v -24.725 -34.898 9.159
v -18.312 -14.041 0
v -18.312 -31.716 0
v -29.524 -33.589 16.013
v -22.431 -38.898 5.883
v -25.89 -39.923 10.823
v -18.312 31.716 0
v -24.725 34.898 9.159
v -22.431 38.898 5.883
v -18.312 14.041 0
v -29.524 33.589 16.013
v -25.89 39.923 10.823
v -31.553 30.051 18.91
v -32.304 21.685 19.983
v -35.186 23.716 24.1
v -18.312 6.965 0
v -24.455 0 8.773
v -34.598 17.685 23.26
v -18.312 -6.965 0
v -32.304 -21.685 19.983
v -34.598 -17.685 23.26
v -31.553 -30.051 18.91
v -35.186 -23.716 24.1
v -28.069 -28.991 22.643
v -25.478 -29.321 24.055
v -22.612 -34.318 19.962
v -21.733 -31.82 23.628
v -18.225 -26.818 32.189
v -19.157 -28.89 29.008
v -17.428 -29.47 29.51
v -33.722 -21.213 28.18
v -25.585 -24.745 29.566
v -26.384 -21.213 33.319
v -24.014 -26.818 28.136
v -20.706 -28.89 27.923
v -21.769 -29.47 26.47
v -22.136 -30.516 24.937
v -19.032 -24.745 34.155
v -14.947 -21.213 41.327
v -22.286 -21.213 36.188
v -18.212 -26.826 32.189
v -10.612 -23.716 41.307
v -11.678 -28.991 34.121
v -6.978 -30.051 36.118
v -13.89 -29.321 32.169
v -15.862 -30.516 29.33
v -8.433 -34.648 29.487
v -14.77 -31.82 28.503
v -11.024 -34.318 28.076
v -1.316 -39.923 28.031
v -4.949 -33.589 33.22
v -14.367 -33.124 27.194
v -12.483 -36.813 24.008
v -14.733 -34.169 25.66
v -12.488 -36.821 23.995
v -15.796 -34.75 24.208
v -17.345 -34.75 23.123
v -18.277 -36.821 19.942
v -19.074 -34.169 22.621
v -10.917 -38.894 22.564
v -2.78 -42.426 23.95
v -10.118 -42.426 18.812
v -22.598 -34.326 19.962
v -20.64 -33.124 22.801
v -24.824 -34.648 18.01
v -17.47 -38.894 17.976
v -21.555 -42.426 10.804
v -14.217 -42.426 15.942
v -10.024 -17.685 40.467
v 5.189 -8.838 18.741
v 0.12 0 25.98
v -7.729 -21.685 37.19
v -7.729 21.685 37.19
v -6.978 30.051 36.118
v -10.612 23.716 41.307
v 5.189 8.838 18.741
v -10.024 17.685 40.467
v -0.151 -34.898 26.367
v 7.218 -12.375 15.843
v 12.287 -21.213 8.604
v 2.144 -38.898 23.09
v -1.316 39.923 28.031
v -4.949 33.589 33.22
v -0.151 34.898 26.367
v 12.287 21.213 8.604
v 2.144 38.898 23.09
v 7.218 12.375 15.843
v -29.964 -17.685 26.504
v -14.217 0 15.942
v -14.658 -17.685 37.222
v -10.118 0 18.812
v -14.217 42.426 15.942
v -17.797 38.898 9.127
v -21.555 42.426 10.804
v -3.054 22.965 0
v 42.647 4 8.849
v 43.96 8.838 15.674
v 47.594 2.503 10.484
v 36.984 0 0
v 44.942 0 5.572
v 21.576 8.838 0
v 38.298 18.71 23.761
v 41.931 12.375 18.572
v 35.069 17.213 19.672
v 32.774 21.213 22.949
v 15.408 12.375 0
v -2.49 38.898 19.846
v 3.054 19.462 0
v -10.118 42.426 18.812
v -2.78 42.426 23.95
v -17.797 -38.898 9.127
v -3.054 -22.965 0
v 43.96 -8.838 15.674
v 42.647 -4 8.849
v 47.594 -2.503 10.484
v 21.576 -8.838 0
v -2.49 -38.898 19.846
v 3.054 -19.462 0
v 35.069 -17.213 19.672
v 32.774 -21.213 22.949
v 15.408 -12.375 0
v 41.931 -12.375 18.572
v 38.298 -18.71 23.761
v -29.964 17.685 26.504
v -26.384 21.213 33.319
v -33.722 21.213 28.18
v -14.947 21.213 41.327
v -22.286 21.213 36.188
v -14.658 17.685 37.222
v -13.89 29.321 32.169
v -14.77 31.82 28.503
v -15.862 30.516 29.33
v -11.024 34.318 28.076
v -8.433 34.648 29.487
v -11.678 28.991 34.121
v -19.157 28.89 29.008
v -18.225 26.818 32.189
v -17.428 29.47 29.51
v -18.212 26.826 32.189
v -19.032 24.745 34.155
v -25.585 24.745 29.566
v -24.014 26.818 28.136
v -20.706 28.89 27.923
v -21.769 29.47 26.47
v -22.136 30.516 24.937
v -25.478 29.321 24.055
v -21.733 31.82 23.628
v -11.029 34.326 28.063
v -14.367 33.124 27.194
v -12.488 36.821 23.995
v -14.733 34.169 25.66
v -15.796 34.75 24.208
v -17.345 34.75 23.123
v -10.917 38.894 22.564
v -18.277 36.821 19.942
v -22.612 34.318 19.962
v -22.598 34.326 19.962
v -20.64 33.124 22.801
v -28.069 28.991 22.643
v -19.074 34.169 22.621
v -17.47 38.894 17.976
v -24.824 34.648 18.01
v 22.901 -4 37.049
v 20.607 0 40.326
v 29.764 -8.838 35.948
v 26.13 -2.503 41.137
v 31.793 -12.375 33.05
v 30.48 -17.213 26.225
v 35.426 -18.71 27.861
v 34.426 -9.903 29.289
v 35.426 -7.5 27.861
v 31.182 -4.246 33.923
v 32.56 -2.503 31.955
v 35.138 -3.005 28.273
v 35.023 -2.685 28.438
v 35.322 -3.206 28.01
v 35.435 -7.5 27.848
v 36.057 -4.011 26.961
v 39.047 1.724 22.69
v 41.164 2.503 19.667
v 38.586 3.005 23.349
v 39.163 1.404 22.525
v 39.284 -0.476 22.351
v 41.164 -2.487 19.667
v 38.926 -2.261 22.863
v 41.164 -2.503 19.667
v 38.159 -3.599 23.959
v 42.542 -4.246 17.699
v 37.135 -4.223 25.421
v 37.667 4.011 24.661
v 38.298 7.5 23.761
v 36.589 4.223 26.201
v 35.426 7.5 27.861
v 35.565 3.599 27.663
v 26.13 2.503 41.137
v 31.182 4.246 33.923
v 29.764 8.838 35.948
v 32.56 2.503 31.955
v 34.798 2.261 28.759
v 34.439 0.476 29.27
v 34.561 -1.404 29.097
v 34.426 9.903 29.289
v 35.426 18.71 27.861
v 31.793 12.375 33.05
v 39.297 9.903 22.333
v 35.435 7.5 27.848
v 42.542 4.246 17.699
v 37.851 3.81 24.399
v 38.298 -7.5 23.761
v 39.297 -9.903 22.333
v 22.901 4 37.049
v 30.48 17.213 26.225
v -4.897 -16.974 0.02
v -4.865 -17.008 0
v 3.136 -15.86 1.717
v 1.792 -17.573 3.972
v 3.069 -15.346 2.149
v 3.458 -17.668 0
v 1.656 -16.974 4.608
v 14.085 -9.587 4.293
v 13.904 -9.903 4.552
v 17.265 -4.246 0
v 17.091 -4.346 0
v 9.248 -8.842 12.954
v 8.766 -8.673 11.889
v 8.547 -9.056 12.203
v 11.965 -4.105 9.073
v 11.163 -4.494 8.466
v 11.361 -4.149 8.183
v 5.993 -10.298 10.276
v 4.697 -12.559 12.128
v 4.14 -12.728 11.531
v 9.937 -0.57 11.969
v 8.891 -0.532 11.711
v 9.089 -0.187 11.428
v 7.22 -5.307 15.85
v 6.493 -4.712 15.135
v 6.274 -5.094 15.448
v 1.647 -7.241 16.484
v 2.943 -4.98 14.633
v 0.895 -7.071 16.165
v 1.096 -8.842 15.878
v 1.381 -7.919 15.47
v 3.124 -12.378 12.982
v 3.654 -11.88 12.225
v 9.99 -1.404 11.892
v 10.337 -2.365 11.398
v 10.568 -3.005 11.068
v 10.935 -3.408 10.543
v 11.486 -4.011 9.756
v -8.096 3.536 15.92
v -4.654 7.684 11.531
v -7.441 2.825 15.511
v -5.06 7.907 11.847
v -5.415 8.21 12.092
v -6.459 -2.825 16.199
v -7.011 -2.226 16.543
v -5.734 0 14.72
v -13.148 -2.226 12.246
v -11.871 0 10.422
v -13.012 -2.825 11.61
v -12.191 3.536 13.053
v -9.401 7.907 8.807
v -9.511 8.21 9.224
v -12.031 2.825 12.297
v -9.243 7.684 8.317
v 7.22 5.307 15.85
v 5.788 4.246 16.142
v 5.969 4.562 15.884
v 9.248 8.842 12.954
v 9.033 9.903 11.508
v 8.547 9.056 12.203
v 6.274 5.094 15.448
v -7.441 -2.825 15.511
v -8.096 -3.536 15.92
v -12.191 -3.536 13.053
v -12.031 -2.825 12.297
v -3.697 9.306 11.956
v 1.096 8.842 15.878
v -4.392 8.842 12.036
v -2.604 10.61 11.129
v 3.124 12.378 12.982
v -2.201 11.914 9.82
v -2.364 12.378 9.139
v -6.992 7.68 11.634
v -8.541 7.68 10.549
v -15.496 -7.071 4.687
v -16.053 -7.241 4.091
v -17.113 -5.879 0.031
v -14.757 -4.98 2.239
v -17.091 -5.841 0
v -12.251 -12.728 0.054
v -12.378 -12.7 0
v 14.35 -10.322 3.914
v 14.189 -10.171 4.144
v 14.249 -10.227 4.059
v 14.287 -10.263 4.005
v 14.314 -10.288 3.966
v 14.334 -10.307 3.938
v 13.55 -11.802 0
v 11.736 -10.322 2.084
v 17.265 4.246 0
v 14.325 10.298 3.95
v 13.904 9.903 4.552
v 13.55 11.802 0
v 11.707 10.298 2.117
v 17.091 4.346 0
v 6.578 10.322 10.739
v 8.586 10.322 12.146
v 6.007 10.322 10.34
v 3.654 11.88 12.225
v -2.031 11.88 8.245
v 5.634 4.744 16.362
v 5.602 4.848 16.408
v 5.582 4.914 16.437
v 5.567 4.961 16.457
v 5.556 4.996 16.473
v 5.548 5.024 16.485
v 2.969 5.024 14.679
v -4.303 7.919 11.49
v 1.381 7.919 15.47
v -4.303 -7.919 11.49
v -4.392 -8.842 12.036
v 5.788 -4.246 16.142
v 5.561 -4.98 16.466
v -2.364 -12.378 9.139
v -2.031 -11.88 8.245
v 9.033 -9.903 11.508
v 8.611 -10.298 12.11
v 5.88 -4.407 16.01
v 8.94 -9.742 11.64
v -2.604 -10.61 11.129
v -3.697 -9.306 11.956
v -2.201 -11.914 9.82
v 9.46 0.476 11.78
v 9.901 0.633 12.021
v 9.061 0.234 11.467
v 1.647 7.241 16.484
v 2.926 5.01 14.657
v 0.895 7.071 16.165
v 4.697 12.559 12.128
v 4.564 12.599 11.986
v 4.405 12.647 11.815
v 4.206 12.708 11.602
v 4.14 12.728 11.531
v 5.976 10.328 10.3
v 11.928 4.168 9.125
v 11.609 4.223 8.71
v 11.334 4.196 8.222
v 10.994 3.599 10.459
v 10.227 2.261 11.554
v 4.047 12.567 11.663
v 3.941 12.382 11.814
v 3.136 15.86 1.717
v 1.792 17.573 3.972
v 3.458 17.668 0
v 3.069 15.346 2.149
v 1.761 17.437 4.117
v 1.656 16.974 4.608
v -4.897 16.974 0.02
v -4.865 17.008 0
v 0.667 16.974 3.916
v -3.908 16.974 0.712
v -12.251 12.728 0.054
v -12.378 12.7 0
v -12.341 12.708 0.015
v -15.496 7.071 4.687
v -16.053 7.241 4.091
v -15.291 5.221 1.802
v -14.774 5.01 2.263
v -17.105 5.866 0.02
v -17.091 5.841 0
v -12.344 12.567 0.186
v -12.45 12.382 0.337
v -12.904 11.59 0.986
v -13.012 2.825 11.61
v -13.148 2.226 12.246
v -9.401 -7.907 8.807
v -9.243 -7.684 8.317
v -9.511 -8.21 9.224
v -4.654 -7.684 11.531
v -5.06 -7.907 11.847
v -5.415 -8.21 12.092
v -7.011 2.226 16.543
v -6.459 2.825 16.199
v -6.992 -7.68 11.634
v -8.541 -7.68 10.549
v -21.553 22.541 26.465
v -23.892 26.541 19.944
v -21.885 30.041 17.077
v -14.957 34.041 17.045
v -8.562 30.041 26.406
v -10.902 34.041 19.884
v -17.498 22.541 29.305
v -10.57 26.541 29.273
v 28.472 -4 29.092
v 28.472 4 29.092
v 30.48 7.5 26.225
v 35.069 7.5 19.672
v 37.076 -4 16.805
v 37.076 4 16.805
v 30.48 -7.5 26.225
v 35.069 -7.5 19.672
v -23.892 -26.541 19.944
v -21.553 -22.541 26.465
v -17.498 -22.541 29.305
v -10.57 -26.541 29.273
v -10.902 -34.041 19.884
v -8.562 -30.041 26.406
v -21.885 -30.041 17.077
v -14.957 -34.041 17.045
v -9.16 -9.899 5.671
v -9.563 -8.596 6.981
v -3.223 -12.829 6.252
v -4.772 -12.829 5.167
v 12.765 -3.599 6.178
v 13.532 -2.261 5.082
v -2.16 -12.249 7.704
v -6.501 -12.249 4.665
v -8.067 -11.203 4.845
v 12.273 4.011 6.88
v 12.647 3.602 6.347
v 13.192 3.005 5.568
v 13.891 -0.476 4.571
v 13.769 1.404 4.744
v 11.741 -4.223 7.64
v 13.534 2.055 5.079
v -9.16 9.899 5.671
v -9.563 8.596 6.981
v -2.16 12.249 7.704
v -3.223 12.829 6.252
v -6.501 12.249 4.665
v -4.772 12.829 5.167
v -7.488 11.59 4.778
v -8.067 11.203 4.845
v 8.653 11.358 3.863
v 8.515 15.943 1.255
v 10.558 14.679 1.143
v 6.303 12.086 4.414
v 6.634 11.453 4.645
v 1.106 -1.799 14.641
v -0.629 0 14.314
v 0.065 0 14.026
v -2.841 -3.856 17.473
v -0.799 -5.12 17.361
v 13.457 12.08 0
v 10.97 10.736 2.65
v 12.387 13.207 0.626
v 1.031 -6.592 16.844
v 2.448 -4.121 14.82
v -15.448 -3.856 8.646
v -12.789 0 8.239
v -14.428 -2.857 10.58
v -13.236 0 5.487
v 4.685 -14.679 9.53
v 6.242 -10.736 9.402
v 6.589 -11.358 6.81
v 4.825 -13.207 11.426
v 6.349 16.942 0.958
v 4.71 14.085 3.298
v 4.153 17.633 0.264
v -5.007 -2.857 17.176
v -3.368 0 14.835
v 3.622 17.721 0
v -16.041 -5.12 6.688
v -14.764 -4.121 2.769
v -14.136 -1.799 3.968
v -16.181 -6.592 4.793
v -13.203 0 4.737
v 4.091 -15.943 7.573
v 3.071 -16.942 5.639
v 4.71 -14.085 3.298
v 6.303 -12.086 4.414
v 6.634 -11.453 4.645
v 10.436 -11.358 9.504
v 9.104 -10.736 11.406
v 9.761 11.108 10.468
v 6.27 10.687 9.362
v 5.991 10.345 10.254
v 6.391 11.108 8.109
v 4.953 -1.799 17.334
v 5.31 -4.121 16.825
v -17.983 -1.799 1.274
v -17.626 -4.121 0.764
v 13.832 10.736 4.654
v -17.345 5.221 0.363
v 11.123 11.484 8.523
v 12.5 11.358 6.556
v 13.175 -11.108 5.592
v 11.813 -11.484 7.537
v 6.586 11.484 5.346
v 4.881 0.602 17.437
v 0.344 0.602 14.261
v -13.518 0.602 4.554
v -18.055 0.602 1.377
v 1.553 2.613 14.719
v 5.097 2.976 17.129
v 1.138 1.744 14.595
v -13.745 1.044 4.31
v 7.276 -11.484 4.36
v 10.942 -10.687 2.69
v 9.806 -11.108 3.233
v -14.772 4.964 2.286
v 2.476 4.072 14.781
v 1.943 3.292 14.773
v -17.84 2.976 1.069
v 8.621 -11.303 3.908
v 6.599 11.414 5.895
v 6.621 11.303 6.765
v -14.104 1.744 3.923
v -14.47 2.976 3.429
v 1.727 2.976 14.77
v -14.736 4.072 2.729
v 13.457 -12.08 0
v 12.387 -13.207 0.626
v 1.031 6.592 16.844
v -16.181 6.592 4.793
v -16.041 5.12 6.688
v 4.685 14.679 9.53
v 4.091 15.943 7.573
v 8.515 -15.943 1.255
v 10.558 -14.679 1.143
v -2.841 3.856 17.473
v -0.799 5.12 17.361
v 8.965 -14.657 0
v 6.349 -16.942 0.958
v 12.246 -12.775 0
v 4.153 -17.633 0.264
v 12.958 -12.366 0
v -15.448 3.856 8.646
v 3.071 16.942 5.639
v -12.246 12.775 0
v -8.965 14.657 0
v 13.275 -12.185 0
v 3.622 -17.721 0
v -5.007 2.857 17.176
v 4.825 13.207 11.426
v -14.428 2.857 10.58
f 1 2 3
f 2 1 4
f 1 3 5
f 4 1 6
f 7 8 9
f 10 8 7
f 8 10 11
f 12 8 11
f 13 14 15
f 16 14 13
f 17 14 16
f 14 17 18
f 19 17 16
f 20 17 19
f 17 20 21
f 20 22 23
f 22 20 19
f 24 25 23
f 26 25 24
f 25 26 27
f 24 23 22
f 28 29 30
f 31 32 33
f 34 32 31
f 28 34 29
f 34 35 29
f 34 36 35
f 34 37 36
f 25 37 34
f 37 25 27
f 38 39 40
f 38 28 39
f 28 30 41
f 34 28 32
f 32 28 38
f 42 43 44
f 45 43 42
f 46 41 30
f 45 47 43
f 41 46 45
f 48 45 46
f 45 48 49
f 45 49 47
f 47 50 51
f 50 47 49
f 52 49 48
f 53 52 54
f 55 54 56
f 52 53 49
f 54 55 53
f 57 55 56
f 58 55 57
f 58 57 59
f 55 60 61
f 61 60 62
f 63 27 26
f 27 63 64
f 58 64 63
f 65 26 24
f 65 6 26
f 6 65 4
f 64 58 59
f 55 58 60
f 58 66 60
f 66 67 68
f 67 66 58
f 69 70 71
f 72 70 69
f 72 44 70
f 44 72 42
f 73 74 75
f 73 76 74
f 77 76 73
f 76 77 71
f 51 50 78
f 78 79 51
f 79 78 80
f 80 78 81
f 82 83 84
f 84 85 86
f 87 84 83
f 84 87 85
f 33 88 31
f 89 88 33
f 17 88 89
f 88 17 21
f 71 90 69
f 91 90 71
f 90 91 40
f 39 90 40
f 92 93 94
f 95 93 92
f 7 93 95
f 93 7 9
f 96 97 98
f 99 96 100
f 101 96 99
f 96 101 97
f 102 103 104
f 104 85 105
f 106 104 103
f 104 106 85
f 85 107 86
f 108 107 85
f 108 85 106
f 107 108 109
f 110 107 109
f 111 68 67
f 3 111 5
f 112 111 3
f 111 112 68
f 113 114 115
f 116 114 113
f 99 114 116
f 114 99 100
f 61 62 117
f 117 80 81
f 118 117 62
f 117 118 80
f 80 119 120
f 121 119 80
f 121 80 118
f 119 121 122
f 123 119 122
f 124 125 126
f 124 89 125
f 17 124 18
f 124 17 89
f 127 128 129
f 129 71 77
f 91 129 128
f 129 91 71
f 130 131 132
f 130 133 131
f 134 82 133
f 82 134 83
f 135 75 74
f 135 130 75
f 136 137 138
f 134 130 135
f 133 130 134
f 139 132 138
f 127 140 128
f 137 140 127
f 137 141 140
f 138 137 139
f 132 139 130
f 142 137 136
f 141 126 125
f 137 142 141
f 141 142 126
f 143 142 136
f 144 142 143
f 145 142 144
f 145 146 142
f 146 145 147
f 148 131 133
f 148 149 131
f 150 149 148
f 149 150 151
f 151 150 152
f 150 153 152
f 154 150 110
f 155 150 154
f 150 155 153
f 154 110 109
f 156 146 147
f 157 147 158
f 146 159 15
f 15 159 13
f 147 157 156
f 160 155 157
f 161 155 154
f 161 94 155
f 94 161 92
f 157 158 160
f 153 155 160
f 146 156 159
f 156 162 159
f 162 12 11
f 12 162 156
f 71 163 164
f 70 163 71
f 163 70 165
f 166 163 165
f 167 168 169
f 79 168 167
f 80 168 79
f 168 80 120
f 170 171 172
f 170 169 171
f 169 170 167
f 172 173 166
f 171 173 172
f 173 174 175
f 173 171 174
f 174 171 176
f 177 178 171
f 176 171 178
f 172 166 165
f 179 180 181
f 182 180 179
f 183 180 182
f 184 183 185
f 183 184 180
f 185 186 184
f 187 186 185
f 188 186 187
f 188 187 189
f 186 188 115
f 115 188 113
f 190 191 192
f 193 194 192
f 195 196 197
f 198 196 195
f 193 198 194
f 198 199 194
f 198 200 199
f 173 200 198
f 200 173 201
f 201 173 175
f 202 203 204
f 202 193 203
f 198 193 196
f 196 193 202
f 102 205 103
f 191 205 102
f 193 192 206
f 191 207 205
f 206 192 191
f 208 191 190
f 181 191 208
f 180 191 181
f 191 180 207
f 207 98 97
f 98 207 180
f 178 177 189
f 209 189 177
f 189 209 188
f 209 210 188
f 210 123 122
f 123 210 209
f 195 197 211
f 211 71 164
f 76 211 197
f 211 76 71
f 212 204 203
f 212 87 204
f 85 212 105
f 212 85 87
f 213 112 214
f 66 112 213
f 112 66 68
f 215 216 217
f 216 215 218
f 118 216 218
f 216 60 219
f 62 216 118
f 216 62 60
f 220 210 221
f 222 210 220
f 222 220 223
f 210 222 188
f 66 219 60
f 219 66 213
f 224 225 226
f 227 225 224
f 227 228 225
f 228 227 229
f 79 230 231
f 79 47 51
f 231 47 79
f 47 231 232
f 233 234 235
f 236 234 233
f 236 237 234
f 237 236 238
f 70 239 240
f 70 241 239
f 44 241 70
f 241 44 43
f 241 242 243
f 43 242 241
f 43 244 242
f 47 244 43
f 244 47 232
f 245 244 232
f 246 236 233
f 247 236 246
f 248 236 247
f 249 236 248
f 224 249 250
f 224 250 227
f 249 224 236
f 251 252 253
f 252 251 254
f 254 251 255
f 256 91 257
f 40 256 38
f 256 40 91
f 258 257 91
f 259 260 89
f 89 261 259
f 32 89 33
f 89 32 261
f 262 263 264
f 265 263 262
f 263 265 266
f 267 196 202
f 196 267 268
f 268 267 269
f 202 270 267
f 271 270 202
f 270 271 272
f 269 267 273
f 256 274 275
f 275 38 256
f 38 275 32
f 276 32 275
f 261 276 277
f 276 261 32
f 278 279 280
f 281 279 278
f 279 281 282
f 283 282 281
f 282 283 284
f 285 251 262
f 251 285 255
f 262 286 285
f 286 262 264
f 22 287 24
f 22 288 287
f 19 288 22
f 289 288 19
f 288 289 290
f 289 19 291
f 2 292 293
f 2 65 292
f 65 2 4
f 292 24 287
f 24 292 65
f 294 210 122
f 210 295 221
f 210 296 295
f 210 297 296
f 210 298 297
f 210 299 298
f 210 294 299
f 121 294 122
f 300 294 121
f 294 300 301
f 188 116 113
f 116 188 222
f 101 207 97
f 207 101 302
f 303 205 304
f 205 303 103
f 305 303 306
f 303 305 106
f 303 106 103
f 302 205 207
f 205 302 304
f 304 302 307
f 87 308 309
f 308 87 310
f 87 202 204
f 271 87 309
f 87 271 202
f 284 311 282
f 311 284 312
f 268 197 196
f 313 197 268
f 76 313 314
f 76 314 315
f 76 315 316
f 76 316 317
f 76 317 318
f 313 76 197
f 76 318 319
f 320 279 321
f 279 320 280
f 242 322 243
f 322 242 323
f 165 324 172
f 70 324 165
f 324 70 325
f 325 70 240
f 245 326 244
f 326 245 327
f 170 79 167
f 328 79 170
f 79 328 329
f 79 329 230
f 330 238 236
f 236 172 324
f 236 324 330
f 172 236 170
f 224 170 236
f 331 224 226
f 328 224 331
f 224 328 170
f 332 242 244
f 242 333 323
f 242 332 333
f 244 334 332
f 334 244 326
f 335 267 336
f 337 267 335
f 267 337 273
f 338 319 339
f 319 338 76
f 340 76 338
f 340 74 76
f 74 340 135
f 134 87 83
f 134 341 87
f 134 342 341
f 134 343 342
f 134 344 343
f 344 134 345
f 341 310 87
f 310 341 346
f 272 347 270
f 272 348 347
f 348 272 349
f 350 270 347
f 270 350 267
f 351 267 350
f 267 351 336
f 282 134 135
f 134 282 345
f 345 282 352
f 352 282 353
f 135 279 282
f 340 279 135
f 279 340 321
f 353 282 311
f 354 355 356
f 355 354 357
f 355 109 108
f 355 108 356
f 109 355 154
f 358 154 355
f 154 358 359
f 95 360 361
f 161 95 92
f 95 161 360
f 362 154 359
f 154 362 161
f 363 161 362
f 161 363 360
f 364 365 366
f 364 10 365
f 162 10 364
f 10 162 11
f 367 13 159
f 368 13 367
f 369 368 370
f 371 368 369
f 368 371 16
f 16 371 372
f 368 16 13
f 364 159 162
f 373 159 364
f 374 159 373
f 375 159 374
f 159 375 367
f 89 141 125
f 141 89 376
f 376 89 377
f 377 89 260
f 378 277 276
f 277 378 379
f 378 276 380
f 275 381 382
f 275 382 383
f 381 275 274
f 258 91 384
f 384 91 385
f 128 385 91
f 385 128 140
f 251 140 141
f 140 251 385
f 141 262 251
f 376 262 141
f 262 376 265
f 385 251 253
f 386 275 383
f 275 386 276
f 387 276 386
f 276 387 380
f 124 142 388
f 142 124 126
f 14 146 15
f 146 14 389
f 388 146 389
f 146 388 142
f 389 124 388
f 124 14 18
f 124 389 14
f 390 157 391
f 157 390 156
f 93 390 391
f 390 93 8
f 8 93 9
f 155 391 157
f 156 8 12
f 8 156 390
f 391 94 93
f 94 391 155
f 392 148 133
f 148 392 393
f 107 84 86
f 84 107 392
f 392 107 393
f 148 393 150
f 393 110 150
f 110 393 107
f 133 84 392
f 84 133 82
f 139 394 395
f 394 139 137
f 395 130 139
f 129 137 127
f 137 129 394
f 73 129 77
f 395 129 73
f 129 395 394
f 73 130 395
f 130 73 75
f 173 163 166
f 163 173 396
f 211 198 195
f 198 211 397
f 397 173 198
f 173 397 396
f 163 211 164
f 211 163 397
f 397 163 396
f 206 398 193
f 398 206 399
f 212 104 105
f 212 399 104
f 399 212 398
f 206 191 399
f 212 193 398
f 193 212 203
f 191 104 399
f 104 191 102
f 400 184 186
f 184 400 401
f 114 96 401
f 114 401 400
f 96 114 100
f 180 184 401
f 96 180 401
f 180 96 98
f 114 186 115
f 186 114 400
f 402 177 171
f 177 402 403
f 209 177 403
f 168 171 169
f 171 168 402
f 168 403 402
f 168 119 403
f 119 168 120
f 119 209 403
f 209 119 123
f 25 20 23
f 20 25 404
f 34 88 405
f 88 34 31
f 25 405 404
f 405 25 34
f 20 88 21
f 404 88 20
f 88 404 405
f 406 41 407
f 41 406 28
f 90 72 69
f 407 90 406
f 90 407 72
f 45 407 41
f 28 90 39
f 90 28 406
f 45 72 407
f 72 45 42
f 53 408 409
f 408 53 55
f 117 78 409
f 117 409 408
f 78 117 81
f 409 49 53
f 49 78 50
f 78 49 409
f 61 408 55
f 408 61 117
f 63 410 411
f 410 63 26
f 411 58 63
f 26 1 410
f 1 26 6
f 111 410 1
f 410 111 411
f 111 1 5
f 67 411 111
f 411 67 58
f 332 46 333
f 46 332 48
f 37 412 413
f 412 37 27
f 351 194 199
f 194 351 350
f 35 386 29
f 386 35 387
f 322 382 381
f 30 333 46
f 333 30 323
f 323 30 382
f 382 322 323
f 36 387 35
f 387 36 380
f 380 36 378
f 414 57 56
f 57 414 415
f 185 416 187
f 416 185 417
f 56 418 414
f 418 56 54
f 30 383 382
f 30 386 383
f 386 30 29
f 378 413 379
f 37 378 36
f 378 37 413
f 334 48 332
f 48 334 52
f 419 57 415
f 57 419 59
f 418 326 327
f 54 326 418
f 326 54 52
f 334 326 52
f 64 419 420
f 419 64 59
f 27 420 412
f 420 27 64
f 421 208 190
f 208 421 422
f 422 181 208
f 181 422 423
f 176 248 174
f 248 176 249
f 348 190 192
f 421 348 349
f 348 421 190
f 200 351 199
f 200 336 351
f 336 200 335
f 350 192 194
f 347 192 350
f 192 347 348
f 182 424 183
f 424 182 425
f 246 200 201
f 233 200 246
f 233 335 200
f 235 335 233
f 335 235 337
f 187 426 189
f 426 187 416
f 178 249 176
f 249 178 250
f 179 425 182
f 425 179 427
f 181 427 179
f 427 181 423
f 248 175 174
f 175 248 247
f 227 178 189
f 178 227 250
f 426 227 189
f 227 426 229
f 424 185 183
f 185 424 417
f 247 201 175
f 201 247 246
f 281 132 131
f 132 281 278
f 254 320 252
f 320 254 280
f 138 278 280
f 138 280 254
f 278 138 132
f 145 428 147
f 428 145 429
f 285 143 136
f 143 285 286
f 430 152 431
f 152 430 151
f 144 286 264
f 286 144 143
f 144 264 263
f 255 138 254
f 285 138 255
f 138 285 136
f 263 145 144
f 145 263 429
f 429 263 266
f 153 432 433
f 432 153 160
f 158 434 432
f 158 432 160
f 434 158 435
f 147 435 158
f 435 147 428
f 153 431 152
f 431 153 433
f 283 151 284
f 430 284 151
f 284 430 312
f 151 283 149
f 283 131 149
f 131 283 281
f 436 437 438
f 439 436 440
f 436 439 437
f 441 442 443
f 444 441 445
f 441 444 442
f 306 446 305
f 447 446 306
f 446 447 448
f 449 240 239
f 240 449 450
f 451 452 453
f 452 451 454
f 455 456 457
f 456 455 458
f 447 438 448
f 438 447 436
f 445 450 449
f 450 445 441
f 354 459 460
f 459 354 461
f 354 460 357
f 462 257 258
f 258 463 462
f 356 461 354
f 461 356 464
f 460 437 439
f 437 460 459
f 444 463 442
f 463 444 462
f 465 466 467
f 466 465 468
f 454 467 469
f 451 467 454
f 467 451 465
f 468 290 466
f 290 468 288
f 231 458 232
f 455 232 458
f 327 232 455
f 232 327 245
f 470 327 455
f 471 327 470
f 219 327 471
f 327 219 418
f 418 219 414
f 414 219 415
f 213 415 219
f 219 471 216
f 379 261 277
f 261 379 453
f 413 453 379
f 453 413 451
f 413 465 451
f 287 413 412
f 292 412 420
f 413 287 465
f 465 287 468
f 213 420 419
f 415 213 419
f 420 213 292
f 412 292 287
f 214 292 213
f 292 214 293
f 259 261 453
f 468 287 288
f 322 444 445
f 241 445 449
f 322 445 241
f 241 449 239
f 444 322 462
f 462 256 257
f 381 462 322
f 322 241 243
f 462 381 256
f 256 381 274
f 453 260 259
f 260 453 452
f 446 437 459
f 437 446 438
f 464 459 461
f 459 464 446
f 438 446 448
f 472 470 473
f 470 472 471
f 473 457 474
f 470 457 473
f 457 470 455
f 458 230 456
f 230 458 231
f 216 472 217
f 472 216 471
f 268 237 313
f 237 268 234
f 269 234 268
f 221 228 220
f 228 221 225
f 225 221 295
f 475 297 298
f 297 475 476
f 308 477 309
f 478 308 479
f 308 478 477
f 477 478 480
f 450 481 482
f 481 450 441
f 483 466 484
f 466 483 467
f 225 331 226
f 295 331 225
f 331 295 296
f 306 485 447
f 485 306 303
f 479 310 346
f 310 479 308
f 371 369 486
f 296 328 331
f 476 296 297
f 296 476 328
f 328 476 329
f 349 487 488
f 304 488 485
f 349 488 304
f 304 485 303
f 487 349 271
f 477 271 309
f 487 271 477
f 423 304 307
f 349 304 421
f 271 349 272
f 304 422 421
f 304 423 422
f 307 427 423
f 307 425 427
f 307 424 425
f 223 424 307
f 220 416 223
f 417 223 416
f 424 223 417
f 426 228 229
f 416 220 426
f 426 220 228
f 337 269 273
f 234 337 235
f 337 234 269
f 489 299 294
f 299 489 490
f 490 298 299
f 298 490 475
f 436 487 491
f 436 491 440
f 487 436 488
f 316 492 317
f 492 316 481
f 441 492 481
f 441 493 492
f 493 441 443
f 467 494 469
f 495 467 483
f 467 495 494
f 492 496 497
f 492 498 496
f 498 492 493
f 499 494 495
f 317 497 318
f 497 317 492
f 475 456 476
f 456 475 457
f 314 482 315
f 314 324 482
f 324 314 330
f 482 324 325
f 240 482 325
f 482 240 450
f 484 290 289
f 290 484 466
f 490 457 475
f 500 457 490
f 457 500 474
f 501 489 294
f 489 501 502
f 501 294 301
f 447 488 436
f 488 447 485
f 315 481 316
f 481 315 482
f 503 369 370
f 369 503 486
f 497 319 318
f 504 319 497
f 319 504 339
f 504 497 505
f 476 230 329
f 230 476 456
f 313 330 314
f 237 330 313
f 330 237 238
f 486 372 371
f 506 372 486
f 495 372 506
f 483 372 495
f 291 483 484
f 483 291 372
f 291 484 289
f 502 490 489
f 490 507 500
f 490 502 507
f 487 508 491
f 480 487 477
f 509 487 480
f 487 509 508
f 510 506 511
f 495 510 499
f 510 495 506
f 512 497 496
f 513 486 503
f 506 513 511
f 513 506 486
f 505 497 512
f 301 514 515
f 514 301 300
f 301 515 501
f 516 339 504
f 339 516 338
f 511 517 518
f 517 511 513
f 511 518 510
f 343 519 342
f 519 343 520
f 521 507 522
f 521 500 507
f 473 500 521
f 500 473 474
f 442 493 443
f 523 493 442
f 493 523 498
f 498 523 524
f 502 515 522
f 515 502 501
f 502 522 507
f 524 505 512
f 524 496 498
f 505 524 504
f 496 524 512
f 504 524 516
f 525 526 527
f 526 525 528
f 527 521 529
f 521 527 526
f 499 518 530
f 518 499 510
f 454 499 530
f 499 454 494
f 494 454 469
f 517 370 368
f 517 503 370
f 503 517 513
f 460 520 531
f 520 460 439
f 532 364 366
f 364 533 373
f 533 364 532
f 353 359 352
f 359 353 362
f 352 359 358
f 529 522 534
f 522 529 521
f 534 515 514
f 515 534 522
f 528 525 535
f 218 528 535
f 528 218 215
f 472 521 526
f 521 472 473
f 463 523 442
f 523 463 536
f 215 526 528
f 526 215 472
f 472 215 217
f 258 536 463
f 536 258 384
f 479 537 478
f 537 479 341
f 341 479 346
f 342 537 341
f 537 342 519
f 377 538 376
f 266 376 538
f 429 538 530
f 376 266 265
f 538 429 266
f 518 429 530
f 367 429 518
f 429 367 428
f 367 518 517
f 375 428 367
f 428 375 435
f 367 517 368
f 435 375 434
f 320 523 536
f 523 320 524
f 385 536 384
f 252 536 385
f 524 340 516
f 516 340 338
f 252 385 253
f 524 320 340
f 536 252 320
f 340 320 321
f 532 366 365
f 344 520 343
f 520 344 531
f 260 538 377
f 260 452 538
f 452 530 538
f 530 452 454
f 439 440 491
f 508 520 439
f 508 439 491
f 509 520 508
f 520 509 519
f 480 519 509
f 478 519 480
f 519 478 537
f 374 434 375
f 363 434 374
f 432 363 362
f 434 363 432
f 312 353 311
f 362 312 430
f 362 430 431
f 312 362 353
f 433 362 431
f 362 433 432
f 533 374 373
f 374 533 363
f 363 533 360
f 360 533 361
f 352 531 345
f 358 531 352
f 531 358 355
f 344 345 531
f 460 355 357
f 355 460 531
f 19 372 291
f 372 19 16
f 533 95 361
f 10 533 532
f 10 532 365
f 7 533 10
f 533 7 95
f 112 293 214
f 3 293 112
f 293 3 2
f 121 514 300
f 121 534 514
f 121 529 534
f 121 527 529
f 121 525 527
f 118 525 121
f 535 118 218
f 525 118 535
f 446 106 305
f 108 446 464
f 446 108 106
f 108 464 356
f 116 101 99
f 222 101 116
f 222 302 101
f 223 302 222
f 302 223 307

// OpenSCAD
// file: globals.scad
/*
Most things in this file is represented as one millimeter, so keep that in mind while changing things.
Some of the setting are not mm but at variables that you can set, such as 2*x=2x and you are setting what x is.
I will try to specify when things are variables and not exact measurements.
*/

// printer slop
slop = 0.15;

obj_leg = 30;
leg_length = 5.5;
small_number = 0.001;
metal_core_rode_global = 5;


///////////////// number of holes /////////////////////
z_hole_number = 8;
other_holes = 8;

///////////////// Pins /////////////////////

//pins that poke out
ball_size = 10;
pin_height = 20;
pin_diameter = 6;


//holes
hole_ball_size = ball_size;
hole_pin_height = pin_height;
hole_pin_diameter = pin_diameter;

///////////////// Z THINGS /////////////////////

berring_slot_width = 7.5;
berring_slot_depth = 6.5;
metal_core_rode = 5;

///////////////// X THINGS /////////////////////

//male dove tails
male_dove_max_width=8;
male_dove_min_width=5;
male_dove_depth=5;
male_dove_height=obj_leg/2;

function scaled_male_dove_max_width() = male_dove_max_width - slop;
function scaled_male_dove_min_width() = male_dove_min_width - slop;
function scaled_male_dove_depth() = male_dove_depth - slop;

//female dove tails, this is found on the y mounts
girl_max_width=11;
girl_min_width=5;
girl_depth=5;
girl_height=obj_leg;


///////////////// Y THINGS /////////////////////
/*
The Y is so normal that all of those global variables at the top should change all of the setting in it, this section is set her incase there are variables set in the future development of this project.
*/

// stepper
motor_side_length = 43.2;
motor_bolt_hole_distance = 31;
motor_center_hole = 23;
motor_shaft_dia = 5;
motor_shaft_hole_dia = 5+2*slop;

// bolts etc.
bolt_hole_dia = 3+2*slop;
bolt_head_hole_dia = 5.8;

m4_bolt_hole_dia = 4+2*slop;
m4_bolt_head_hole_dia = 6.8+2*slop;


m3_nut_side = 5.65;
m3_nut_height = 2.3;
m4_nut_side = 6.85;
m4_nut_height = 3.1;

// threaded rod
lifter_rod_diam = 9.86;
hole_threaded_rod = lifter_rod_diam+2*slop;

// for the extensions
metal_rod_size = 9;
// main file
include <include.scad>;
include <globals.scad>;
//if you can do pretty far over hangs, like an SLA printer or something then take this off by setting it to flase.
    support = false;
	slot_translate = .5;
	rod_size = .5;
module basic_corner(){
	module added(){
			translate([0,0,15]) cube([obj_leg,obj_leg,obj_leg*2], center=true);
			translate([0,15,0]) cube([obj_leg,obj_leg*2,obj_leg], center=true);
			translate([15,0,0]) cube([obj_leg*2,obj_leg,obj_leg], center=true);
	}
	module taken(){
		cylinder(d=8.5, h=obj_leg*5, center=true);
		rotate([0,90,0]) cylinder(d=8.5, h=obj_leg*5, center=true);
		rotate([90,0,0]) cylinder(d=8.5, h=obj_leg*5, center=true);
		cylinder(d=23, h=28, center=true);
		rotate([0,90,0]) cylinder(d=23, h=28, center=true);
		rotate([90,0,0]) cylinder(d=23, h=28, center=true);
		module wrap(){
			translate([0,-15.005,0]) male_dovetail(height=50);
			rotate([0,0,90]) translate([0,-15.005,0]) male_dovetail(height=50);
			rotate([0,0,180]) translate([0,-15.005,0]) male_dovetail(height=50);
			rotate([0,0,-90]) translate([0,-15.005,0]) male_dovetail(height=50);
		}
		wrap();
		rotate([0,90,0]) wrap();
		rotate([-90,90,0]) wrap();
		rotate([0,45,180]) translate([0,-45,0]) tie_end();
		rotate([0,45,90]) translate([0,-45,0]) tie_end();
		rotate([-90,0,45]) translate([0,-45,0]) tie_end();

	}
	module corner() {
		difference(){
			added();
			taken();
		}
	};
	rotate([45,0,0]) corner();
};
module full_corner(){
	module support_pillers(){
		
		translate([48-slot_translate/2,3,0]) cylinder(h=11,d=4);
		translate([48-slot_translate/2,-3,0]) cylinder(h=11,d=4);
		
		translate([39-slot_translate/2,18,24]) rotate([0,-40,0]) cylinder(h=6,d=4);
		translate([39-slot_translate/2,-18,24]) rotate([0,-40,0]) cylinder(h=6,d=4);
	}
	if (support==true)
	{
		support_pillers();
		rotate([0,0,(360/3)*2]) support_pillers();
		rotate([0,0,(360/3)*1]) support_pillers();
	}
	difference(){
		translate([0,0,0]) rotate([0,-35,0])basic_corner();
		union(){
			//cylinder(h=50, d=15);
			//translate([-20,0,0]) cylinder(h=50, d=7);
			//translate([10,17,0]) cylinder(h=50, d=7);
			//translate([10,-17,0]) cylinder(h=50, d=7);
			translate([0,0,-25]) cube([200,200,50], center=true);
		}
	}
}

full_corner();
